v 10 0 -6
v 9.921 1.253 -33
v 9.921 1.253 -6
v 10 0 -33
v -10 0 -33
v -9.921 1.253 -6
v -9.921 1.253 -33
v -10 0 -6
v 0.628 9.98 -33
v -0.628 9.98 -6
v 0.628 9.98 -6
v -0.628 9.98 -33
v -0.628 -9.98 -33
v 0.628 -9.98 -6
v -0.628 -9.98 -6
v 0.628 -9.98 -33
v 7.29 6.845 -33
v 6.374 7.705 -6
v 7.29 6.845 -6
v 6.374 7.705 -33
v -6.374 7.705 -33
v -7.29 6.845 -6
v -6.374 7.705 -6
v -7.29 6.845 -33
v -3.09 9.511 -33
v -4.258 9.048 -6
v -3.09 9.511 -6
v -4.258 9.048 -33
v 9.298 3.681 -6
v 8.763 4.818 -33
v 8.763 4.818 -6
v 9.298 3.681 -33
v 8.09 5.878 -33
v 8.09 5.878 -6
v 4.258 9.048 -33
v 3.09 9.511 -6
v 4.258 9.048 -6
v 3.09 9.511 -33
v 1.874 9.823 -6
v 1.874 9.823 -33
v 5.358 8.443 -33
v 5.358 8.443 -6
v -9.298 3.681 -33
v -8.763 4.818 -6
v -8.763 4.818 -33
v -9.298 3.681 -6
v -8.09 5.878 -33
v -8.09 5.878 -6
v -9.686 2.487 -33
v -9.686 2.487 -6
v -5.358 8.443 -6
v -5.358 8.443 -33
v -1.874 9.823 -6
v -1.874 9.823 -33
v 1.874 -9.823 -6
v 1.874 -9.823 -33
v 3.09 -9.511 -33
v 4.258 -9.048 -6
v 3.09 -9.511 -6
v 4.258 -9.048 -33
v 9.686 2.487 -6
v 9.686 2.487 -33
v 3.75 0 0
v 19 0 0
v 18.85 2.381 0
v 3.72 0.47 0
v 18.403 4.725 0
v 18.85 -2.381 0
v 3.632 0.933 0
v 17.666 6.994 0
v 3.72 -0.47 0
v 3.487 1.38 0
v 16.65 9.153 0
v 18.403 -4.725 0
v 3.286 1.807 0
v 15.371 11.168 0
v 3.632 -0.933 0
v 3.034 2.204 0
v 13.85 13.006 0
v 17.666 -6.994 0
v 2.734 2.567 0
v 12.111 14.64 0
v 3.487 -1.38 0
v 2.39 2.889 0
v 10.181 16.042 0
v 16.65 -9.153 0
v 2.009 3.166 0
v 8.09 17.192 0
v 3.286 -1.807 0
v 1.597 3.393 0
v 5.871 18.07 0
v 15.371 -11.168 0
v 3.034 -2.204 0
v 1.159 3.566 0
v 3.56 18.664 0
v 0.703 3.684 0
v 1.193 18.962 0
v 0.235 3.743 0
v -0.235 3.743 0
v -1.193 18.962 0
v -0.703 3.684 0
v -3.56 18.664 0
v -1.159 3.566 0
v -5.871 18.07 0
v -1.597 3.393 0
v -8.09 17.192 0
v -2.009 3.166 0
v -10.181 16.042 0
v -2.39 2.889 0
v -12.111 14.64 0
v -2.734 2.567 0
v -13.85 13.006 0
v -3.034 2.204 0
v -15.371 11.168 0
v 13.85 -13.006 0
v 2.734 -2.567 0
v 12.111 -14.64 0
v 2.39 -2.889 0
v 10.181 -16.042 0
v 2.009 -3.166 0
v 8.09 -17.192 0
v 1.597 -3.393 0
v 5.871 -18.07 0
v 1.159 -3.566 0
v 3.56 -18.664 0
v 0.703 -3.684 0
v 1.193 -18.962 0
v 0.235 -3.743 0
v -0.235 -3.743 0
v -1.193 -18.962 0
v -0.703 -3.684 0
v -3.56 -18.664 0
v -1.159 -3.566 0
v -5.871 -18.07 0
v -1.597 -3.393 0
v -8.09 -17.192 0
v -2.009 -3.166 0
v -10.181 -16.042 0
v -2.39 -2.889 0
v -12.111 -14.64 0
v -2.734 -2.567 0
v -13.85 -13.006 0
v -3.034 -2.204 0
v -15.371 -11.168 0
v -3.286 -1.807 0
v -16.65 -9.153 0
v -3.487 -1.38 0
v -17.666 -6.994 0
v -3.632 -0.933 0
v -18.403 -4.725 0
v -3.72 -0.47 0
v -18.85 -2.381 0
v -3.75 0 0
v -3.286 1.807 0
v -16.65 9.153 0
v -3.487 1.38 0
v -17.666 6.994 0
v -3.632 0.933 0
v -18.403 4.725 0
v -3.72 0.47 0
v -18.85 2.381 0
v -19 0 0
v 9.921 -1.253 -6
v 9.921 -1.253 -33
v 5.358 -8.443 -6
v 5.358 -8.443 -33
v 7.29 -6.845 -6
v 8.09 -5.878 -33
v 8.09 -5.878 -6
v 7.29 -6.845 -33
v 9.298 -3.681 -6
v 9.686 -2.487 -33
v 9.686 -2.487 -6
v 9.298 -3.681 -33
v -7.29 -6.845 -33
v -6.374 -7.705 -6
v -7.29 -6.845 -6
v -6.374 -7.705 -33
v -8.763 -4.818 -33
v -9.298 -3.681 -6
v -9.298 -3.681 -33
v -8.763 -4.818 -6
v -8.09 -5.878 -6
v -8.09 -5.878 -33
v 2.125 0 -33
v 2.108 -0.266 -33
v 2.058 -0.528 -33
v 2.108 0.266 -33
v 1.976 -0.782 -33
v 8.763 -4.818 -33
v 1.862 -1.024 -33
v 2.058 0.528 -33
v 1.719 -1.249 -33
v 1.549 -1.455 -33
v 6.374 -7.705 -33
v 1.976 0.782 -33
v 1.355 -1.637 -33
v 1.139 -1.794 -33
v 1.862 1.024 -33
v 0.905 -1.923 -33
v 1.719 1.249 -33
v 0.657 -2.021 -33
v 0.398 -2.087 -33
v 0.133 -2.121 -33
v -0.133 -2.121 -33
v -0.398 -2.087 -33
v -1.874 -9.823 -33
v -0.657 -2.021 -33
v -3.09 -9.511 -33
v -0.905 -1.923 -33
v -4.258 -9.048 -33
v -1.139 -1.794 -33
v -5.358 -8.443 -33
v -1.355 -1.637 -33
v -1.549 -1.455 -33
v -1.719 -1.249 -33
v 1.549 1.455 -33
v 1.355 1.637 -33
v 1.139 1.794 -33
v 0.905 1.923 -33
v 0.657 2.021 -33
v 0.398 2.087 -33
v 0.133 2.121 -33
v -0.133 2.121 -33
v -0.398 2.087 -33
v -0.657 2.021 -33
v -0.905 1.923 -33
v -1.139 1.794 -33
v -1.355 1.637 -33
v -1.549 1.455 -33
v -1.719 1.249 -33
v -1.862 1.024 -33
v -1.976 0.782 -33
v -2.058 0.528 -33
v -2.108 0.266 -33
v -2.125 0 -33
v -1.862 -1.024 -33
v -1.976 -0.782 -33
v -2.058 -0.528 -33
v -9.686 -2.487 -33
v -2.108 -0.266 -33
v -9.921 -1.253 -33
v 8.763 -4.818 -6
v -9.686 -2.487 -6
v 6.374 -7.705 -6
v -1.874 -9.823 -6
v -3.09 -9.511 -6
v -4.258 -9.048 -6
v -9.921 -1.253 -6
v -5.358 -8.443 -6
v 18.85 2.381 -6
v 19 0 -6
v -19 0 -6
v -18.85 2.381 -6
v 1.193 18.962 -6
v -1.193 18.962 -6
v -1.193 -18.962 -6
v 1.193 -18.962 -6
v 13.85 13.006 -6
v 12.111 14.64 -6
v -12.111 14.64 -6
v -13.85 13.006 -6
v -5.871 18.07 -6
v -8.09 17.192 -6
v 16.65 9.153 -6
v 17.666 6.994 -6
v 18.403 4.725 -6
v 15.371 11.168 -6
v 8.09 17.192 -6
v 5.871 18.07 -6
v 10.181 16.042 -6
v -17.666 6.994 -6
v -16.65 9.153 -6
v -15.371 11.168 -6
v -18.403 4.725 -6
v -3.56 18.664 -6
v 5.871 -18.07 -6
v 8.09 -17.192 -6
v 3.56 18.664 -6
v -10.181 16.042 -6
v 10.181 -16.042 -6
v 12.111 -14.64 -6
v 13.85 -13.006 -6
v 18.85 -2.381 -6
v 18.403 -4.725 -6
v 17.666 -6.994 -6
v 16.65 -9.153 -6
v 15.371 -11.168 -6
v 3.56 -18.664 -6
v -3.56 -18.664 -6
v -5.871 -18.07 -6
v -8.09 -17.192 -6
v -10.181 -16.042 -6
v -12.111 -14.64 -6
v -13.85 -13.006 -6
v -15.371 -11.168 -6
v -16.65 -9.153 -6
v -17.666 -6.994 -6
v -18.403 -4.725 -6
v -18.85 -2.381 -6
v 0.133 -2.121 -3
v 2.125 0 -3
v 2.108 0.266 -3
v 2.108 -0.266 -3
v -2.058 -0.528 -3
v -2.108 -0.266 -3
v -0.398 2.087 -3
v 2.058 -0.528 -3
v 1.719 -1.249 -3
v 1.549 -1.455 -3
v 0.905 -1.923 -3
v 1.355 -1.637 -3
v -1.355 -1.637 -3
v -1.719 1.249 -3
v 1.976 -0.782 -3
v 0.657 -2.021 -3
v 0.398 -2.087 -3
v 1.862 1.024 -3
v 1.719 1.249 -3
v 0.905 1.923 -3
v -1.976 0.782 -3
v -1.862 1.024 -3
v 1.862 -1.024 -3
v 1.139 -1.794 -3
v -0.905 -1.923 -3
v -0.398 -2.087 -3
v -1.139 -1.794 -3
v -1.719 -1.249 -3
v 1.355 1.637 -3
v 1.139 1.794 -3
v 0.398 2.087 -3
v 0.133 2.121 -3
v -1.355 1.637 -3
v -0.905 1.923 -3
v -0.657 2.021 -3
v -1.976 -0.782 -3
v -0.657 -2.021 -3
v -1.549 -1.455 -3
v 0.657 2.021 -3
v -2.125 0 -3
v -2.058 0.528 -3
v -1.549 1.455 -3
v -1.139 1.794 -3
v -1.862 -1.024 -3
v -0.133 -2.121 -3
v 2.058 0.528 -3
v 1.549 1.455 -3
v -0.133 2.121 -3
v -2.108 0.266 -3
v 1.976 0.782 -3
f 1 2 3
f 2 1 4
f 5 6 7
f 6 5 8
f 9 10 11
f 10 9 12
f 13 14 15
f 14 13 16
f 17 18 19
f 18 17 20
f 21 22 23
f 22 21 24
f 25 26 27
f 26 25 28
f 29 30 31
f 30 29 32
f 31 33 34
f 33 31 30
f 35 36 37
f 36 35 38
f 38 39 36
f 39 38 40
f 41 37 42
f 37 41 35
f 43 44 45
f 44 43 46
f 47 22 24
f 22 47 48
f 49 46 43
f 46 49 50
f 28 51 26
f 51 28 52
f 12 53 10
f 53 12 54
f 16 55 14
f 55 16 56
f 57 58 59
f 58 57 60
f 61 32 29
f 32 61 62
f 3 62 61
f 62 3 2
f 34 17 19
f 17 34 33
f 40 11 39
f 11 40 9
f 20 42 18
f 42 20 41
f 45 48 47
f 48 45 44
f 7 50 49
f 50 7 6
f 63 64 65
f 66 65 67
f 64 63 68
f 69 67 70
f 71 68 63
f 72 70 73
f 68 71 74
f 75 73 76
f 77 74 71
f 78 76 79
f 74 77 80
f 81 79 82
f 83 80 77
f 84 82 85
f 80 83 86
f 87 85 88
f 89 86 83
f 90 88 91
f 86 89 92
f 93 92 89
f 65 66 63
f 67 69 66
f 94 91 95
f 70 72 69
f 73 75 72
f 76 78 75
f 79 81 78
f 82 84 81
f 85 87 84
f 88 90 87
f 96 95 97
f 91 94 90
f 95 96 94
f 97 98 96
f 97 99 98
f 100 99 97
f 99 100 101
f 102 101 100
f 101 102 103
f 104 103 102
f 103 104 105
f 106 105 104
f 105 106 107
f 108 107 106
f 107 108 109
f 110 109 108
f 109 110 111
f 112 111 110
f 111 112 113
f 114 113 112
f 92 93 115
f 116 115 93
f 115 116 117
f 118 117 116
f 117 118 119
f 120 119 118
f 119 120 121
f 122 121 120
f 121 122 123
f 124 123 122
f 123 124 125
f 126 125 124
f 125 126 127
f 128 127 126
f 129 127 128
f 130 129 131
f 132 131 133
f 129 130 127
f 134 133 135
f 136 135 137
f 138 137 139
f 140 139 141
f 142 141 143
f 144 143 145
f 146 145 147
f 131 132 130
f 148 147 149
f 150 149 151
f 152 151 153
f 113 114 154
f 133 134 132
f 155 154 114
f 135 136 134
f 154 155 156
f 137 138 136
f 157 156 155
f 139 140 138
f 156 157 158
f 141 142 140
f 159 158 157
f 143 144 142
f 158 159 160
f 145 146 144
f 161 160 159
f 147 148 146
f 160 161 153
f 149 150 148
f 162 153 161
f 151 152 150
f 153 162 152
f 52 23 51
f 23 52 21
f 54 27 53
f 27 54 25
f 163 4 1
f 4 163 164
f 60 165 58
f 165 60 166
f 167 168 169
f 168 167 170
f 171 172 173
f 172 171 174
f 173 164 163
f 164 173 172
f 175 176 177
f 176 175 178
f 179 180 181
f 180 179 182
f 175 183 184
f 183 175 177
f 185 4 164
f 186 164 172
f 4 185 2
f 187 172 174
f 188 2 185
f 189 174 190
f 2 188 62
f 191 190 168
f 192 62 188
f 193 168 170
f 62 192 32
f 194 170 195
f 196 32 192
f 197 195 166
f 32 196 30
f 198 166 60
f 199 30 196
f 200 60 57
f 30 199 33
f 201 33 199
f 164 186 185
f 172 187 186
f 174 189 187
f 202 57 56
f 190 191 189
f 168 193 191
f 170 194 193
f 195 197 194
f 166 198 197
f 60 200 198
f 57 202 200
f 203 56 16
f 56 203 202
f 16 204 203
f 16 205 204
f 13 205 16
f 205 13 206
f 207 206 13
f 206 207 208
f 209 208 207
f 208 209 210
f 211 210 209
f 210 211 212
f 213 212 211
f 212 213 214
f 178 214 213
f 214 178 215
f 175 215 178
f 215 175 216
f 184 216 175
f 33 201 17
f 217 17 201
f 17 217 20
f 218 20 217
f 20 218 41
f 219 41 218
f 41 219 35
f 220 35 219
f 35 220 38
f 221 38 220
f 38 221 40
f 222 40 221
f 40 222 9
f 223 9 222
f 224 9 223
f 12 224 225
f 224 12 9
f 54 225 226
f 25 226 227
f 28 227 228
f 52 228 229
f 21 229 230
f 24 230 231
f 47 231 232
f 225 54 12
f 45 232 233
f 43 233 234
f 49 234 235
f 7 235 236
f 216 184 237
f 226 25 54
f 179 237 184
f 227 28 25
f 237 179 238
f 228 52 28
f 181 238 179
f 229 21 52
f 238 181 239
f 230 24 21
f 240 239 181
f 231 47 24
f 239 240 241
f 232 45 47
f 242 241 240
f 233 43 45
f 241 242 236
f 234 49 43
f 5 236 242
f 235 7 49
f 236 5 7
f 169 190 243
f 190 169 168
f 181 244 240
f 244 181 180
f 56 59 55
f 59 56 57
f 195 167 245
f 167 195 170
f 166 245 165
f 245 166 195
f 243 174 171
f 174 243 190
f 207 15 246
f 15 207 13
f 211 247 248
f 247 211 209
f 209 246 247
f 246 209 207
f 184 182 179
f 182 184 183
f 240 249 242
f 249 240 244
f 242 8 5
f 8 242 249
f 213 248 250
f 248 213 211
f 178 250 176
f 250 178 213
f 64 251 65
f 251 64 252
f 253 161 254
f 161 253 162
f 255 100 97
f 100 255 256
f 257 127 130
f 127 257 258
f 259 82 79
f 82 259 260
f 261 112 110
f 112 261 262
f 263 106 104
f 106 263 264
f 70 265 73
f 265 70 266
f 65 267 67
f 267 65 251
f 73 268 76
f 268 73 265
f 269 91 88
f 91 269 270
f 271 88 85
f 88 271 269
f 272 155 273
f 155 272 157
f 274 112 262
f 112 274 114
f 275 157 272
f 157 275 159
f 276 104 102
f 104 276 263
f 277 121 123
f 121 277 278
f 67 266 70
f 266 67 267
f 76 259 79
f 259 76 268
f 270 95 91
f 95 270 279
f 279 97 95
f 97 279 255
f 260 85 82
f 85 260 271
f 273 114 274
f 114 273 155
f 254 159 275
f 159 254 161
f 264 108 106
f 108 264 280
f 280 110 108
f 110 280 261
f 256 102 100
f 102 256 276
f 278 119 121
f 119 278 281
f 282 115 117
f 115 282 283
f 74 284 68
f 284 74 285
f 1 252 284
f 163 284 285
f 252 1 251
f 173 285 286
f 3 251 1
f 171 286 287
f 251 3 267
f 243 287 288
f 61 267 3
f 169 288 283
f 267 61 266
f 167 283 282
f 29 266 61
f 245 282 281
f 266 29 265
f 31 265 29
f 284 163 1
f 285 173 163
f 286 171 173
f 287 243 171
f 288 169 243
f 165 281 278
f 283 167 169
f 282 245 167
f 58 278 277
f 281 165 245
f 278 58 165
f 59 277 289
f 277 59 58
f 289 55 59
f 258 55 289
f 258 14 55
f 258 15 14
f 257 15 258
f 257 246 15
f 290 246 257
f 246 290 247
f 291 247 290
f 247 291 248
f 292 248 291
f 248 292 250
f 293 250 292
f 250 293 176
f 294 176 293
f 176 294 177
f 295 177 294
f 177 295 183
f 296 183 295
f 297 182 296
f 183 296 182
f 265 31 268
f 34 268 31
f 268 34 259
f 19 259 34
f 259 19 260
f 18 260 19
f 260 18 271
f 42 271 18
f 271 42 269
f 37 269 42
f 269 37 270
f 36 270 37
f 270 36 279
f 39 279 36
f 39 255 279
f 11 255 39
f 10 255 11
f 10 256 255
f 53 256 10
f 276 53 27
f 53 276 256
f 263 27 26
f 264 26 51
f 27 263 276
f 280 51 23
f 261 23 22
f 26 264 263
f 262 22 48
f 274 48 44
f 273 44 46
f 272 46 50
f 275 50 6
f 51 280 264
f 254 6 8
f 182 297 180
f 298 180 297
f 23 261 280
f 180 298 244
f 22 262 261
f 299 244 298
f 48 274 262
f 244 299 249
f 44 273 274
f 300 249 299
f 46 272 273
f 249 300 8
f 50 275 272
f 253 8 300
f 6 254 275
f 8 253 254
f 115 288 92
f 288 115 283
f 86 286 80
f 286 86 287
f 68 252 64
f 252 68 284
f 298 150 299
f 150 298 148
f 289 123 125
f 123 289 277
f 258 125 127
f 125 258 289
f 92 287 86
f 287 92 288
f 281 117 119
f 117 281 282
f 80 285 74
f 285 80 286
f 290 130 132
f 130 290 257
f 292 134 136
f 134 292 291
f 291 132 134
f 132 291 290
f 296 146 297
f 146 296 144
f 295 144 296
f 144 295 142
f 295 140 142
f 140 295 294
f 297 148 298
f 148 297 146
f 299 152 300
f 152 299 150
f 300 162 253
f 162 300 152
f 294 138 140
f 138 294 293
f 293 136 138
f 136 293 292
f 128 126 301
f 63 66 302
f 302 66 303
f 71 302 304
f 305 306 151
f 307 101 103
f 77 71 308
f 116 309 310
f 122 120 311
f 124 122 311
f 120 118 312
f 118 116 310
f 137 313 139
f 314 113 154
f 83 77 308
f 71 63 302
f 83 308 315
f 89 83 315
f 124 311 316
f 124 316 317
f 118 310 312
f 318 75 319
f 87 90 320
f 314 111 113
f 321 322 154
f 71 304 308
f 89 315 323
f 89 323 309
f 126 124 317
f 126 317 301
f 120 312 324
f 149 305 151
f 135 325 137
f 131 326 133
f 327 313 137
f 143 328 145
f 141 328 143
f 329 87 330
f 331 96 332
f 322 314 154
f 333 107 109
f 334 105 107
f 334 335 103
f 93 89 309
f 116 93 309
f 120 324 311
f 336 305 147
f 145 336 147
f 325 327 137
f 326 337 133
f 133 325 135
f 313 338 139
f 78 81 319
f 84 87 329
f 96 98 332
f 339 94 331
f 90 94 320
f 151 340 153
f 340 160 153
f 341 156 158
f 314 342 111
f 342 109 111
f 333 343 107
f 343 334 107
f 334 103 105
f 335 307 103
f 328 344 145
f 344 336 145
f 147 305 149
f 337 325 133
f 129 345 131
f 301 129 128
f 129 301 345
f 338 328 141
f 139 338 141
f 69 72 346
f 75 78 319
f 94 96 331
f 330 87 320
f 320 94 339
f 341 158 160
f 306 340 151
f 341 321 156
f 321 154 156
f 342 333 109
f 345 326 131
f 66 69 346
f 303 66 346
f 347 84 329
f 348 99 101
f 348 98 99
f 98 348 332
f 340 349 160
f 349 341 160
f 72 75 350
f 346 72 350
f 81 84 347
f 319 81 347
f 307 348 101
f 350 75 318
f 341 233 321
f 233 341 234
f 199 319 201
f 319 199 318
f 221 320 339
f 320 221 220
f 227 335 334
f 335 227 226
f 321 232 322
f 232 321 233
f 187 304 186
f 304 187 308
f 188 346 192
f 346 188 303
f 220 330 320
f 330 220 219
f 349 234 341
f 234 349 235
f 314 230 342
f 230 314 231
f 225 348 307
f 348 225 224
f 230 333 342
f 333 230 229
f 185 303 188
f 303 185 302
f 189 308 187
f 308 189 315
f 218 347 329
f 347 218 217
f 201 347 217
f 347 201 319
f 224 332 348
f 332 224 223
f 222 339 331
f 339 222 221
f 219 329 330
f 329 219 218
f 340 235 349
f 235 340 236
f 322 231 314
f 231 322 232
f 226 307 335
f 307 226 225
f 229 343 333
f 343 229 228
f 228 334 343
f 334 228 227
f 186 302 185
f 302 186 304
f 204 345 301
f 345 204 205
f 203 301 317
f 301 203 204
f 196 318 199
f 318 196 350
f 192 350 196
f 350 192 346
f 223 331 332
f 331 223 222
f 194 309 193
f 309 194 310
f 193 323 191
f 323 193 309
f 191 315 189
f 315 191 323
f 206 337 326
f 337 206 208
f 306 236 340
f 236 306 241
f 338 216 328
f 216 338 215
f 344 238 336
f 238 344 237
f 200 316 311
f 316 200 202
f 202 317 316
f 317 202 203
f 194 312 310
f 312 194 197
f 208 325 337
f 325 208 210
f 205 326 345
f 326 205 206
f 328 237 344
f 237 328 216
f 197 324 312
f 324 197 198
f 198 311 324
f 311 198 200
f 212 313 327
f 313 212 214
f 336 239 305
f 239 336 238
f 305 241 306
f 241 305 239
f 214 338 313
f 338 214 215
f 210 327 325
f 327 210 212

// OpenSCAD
$fn = 50;


difference() {
	union() {
		translate(v = [0, 0, -33.0000000000]) {
			cylinder(h = 33, r = 10.0000000000);
		}
		translate(v = [0, 0, -6.0000000000]) {
			cylinder(h = 6, r = 19.0000000000);
		}
	}
	union() {
		translate(v = [0, 0, 0]) {
			rotate(a = [0, 0, 0]) {
				difference() {
					union() {
						#translate(v = [0, 0, -33.0000000000]) {
							cylinder(h = 33, r = 2.0000000000);
						}
						#translate(v = [0, 0, -3]) {
							cylinder(h = 3, r = 10.0000000000, r1 = 2.1250000000, r2 = 3.7500000000);
						}
						#translate(v = [0, 0, -33.0000000000]) {
							cylinder(h = 33, r = 2.1250000000);
						}
						#translate(v = [0, 0, -33.0000000000]) {
							cylinder(h = 33, r = 2.0000000000);
						}
					}
					union();
				}
			}
		}
	}
}
